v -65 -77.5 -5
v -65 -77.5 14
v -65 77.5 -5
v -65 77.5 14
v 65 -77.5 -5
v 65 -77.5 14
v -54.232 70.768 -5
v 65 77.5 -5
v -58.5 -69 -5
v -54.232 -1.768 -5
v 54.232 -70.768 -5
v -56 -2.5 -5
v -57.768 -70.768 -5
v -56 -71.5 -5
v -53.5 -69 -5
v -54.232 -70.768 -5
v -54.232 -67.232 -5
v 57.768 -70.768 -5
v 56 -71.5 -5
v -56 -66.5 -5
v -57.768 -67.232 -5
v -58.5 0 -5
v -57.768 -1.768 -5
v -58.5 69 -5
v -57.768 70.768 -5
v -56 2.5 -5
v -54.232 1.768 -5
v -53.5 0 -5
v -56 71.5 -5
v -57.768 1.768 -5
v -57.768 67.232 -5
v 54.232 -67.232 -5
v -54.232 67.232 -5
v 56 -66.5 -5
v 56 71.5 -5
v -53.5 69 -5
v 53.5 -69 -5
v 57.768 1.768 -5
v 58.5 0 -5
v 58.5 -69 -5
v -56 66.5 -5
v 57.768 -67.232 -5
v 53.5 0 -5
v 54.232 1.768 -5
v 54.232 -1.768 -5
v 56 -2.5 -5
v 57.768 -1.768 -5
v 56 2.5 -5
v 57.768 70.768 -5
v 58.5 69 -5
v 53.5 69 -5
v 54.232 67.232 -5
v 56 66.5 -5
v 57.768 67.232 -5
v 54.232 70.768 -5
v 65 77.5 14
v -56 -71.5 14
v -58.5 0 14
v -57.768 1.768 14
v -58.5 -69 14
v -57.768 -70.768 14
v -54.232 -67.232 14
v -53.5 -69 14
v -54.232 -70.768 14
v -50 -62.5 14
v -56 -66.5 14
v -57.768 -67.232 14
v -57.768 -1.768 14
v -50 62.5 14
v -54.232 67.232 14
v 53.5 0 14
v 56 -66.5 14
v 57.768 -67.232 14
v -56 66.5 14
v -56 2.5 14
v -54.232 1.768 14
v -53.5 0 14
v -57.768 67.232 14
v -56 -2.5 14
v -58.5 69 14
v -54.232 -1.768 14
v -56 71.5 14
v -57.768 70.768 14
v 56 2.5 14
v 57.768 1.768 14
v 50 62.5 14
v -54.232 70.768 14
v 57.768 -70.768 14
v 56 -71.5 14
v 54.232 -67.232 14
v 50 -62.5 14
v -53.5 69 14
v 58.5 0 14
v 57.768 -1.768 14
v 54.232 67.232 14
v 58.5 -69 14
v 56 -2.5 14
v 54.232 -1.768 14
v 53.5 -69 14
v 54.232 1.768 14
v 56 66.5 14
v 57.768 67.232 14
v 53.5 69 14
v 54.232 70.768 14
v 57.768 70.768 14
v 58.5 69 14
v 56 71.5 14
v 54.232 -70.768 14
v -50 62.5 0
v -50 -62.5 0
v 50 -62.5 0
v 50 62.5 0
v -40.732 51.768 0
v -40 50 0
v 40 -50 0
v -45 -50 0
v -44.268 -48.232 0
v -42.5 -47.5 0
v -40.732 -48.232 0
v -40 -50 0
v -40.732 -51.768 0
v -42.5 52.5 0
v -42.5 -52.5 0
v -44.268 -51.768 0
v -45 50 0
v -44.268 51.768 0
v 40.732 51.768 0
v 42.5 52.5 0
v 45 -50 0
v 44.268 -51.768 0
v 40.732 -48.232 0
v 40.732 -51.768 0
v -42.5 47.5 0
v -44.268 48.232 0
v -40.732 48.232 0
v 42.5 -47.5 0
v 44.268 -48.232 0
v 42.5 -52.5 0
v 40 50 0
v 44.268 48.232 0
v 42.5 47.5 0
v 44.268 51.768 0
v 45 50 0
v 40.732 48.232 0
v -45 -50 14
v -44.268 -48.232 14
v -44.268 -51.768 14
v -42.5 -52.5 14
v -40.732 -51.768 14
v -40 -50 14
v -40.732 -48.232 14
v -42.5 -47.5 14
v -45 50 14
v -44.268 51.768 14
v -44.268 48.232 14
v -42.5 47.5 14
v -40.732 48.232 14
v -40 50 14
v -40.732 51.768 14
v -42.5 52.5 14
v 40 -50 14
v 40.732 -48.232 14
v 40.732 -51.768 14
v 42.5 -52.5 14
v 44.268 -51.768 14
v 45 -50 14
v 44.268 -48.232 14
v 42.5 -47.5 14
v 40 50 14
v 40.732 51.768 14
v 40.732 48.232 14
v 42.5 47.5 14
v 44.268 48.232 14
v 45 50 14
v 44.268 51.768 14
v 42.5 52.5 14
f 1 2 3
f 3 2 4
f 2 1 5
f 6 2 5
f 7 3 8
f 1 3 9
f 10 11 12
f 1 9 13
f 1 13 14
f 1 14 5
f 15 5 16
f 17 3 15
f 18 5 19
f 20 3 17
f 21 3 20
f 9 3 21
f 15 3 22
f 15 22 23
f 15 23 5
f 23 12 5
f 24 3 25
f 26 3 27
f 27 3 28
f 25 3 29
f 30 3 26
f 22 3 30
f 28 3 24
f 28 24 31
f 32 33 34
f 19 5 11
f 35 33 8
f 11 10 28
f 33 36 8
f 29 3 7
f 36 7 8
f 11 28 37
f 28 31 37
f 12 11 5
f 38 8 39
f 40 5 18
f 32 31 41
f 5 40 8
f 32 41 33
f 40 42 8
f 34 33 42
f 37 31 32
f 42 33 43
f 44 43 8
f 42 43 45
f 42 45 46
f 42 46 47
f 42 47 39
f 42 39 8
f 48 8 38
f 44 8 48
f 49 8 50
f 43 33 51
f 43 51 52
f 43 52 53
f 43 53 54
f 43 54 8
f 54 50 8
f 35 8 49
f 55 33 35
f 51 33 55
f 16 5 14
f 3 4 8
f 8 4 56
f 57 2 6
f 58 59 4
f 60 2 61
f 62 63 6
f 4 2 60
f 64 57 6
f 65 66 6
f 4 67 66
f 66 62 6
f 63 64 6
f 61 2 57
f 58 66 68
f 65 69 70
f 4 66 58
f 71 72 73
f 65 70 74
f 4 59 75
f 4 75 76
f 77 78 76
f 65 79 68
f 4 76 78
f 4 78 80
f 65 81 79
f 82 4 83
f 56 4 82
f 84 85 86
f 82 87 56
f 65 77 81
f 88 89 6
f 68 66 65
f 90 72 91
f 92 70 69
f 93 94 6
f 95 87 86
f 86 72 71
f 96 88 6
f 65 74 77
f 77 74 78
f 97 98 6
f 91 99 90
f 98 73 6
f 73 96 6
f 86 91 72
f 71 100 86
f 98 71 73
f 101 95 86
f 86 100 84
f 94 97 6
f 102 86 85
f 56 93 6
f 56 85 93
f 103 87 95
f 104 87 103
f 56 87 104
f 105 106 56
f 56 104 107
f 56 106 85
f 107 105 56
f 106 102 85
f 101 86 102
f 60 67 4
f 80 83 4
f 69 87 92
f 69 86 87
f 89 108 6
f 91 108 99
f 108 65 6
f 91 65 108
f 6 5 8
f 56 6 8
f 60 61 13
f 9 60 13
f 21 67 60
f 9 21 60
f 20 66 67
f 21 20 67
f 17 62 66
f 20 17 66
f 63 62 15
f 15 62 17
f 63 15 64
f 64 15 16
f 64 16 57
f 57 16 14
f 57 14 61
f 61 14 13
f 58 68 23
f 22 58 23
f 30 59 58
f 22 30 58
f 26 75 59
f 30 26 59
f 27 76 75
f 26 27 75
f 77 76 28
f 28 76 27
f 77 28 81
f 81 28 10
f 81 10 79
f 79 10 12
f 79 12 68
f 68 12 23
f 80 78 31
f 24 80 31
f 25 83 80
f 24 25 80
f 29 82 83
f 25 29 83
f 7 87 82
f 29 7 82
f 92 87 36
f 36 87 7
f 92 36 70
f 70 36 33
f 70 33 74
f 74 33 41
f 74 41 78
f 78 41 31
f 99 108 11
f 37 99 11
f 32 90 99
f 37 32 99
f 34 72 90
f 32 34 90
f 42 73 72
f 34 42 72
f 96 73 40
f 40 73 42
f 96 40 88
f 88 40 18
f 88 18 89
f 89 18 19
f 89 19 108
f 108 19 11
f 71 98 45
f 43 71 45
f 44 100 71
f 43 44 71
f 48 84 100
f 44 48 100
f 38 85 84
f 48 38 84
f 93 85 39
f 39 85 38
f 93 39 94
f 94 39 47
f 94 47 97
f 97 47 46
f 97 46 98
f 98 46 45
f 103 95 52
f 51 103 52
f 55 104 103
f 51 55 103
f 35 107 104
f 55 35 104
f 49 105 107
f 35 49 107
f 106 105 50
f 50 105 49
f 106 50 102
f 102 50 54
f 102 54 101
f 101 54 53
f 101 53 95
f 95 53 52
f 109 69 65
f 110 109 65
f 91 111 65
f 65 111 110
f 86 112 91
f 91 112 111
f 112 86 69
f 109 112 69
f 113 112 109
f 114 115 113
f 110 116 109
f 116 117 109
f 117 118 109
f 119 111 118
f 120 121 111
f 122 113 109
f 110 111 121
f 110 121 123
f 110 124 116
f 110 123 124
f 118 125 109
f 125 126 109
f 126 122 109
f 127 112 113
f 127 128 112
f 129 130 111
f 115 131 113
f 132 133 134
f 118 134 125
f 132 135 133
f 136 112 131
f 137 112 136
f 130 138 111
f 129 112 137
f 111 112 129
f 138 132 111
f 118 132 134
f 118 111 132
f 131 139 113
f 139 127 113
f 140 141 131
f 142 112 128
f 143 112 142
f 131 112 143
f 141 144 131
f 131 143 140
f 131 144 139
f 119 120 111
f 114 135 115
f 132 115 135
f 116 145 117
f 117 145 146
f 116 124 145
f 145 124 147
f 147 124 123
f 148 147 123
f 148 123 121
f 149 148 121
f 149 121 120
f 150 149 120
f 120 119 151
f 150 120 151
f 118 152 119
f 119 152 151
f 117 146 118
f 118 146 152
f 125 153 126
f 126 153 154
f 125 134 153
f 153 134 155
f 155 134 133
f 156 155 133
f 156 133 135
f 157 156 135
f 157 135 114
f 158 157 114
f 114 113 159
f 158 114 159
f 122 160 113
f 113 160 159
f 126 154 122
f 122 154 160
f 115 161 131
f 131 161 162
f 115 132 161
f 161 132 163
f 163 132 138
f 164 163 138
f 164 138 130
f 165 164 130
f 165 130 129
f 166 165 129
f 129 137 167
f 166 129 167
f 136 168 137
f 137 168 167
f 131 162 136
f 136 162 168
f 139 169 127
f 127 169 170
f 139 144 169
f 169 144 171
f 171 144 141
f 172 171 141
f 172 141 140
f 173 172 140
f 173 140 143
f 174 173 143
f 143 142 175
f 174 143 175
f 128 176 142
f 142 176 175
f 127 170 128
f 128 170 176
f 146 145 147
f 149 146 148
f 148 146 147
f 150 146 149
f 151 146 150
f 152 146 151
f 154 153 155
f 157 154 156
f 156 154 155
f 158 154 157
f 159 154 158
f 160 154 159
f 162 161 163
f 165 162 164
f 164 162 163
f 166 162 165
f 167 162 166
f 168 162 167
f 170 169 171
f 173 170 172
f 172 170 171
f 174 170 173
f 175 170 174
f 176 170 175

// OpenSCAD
//Compact Tension Specimen based on ASTM E399 for 3D printable molds
//Developed for MY4777 at Michigan Technological University
//By: David Porter, Brian Haupt, and Dean Johnson
//Under Supervision of Dr. Pearce
//All dimensions parametric based on "t" 

t=20;
w=2*t; //base dimension
plackt=4; 

//module plack(){
//module alignment(){
//	translate([42.5,50,0])cylinder(d=5,h=4, center=true);
//	translate([-42.5,50,0])cylinder(d=5,h=4, center=true);
//	translate([42.5,-50,0])cylinder(d=5,h=4, center=true);
//	translate([-42.5,-50,0])cylinder(d=5,h=4, center=true);
//	}
//difference(){
//	cube([100,125,plackt], center=true);
//	alignment();	
//}}



module frame(){
difference(){
translate([-65,-155/2,-5])
cube([130,155,t/2+plackt+5], center=false);

translate([0,0,(plackt+t/2)/2])
cube([100,125,plackt+t/2], center=true);}

translate([0,0,(plackt+t/2)/2])
union(){
	translate([42.5,50,0])cylinder(d=5,h=plackt+t/2, center=true);
	translate([-42.5,50,0])cylinder(d=5,h=plackt+t/2, center=true);
	translate([42.5,-50,0])cylinder(d=5,h=plackt+t/2, center=true);
	translate([-42.5,-50,0])cylinder(d=5,h=plackt+t/2, center=true);
	}}


difference(){
frame();

translate([0,0,(-5+plackt+t/2)/2])
union(){
	translate([56,69,0])cylinder(d=5,h=5+plackt+t/2, center=true);
	translate([-56,69,0])cylinder(d=5,h=5+plackt+t/2, center=true);
	translate([56,-69,0])cylinder(d=5,h=5+plackt+t/2, center=true);
	translate([-56,-69,0])cylinder(d=5,h=5+plackt+t/2, center=true);
   translate([56,0,0])cylinder(d=5,h=5+plackt+t/2, center=true);
	translate([-56,0,0])cylinder(d=5,h=5+plackt+t/2, center=true);
	}}
